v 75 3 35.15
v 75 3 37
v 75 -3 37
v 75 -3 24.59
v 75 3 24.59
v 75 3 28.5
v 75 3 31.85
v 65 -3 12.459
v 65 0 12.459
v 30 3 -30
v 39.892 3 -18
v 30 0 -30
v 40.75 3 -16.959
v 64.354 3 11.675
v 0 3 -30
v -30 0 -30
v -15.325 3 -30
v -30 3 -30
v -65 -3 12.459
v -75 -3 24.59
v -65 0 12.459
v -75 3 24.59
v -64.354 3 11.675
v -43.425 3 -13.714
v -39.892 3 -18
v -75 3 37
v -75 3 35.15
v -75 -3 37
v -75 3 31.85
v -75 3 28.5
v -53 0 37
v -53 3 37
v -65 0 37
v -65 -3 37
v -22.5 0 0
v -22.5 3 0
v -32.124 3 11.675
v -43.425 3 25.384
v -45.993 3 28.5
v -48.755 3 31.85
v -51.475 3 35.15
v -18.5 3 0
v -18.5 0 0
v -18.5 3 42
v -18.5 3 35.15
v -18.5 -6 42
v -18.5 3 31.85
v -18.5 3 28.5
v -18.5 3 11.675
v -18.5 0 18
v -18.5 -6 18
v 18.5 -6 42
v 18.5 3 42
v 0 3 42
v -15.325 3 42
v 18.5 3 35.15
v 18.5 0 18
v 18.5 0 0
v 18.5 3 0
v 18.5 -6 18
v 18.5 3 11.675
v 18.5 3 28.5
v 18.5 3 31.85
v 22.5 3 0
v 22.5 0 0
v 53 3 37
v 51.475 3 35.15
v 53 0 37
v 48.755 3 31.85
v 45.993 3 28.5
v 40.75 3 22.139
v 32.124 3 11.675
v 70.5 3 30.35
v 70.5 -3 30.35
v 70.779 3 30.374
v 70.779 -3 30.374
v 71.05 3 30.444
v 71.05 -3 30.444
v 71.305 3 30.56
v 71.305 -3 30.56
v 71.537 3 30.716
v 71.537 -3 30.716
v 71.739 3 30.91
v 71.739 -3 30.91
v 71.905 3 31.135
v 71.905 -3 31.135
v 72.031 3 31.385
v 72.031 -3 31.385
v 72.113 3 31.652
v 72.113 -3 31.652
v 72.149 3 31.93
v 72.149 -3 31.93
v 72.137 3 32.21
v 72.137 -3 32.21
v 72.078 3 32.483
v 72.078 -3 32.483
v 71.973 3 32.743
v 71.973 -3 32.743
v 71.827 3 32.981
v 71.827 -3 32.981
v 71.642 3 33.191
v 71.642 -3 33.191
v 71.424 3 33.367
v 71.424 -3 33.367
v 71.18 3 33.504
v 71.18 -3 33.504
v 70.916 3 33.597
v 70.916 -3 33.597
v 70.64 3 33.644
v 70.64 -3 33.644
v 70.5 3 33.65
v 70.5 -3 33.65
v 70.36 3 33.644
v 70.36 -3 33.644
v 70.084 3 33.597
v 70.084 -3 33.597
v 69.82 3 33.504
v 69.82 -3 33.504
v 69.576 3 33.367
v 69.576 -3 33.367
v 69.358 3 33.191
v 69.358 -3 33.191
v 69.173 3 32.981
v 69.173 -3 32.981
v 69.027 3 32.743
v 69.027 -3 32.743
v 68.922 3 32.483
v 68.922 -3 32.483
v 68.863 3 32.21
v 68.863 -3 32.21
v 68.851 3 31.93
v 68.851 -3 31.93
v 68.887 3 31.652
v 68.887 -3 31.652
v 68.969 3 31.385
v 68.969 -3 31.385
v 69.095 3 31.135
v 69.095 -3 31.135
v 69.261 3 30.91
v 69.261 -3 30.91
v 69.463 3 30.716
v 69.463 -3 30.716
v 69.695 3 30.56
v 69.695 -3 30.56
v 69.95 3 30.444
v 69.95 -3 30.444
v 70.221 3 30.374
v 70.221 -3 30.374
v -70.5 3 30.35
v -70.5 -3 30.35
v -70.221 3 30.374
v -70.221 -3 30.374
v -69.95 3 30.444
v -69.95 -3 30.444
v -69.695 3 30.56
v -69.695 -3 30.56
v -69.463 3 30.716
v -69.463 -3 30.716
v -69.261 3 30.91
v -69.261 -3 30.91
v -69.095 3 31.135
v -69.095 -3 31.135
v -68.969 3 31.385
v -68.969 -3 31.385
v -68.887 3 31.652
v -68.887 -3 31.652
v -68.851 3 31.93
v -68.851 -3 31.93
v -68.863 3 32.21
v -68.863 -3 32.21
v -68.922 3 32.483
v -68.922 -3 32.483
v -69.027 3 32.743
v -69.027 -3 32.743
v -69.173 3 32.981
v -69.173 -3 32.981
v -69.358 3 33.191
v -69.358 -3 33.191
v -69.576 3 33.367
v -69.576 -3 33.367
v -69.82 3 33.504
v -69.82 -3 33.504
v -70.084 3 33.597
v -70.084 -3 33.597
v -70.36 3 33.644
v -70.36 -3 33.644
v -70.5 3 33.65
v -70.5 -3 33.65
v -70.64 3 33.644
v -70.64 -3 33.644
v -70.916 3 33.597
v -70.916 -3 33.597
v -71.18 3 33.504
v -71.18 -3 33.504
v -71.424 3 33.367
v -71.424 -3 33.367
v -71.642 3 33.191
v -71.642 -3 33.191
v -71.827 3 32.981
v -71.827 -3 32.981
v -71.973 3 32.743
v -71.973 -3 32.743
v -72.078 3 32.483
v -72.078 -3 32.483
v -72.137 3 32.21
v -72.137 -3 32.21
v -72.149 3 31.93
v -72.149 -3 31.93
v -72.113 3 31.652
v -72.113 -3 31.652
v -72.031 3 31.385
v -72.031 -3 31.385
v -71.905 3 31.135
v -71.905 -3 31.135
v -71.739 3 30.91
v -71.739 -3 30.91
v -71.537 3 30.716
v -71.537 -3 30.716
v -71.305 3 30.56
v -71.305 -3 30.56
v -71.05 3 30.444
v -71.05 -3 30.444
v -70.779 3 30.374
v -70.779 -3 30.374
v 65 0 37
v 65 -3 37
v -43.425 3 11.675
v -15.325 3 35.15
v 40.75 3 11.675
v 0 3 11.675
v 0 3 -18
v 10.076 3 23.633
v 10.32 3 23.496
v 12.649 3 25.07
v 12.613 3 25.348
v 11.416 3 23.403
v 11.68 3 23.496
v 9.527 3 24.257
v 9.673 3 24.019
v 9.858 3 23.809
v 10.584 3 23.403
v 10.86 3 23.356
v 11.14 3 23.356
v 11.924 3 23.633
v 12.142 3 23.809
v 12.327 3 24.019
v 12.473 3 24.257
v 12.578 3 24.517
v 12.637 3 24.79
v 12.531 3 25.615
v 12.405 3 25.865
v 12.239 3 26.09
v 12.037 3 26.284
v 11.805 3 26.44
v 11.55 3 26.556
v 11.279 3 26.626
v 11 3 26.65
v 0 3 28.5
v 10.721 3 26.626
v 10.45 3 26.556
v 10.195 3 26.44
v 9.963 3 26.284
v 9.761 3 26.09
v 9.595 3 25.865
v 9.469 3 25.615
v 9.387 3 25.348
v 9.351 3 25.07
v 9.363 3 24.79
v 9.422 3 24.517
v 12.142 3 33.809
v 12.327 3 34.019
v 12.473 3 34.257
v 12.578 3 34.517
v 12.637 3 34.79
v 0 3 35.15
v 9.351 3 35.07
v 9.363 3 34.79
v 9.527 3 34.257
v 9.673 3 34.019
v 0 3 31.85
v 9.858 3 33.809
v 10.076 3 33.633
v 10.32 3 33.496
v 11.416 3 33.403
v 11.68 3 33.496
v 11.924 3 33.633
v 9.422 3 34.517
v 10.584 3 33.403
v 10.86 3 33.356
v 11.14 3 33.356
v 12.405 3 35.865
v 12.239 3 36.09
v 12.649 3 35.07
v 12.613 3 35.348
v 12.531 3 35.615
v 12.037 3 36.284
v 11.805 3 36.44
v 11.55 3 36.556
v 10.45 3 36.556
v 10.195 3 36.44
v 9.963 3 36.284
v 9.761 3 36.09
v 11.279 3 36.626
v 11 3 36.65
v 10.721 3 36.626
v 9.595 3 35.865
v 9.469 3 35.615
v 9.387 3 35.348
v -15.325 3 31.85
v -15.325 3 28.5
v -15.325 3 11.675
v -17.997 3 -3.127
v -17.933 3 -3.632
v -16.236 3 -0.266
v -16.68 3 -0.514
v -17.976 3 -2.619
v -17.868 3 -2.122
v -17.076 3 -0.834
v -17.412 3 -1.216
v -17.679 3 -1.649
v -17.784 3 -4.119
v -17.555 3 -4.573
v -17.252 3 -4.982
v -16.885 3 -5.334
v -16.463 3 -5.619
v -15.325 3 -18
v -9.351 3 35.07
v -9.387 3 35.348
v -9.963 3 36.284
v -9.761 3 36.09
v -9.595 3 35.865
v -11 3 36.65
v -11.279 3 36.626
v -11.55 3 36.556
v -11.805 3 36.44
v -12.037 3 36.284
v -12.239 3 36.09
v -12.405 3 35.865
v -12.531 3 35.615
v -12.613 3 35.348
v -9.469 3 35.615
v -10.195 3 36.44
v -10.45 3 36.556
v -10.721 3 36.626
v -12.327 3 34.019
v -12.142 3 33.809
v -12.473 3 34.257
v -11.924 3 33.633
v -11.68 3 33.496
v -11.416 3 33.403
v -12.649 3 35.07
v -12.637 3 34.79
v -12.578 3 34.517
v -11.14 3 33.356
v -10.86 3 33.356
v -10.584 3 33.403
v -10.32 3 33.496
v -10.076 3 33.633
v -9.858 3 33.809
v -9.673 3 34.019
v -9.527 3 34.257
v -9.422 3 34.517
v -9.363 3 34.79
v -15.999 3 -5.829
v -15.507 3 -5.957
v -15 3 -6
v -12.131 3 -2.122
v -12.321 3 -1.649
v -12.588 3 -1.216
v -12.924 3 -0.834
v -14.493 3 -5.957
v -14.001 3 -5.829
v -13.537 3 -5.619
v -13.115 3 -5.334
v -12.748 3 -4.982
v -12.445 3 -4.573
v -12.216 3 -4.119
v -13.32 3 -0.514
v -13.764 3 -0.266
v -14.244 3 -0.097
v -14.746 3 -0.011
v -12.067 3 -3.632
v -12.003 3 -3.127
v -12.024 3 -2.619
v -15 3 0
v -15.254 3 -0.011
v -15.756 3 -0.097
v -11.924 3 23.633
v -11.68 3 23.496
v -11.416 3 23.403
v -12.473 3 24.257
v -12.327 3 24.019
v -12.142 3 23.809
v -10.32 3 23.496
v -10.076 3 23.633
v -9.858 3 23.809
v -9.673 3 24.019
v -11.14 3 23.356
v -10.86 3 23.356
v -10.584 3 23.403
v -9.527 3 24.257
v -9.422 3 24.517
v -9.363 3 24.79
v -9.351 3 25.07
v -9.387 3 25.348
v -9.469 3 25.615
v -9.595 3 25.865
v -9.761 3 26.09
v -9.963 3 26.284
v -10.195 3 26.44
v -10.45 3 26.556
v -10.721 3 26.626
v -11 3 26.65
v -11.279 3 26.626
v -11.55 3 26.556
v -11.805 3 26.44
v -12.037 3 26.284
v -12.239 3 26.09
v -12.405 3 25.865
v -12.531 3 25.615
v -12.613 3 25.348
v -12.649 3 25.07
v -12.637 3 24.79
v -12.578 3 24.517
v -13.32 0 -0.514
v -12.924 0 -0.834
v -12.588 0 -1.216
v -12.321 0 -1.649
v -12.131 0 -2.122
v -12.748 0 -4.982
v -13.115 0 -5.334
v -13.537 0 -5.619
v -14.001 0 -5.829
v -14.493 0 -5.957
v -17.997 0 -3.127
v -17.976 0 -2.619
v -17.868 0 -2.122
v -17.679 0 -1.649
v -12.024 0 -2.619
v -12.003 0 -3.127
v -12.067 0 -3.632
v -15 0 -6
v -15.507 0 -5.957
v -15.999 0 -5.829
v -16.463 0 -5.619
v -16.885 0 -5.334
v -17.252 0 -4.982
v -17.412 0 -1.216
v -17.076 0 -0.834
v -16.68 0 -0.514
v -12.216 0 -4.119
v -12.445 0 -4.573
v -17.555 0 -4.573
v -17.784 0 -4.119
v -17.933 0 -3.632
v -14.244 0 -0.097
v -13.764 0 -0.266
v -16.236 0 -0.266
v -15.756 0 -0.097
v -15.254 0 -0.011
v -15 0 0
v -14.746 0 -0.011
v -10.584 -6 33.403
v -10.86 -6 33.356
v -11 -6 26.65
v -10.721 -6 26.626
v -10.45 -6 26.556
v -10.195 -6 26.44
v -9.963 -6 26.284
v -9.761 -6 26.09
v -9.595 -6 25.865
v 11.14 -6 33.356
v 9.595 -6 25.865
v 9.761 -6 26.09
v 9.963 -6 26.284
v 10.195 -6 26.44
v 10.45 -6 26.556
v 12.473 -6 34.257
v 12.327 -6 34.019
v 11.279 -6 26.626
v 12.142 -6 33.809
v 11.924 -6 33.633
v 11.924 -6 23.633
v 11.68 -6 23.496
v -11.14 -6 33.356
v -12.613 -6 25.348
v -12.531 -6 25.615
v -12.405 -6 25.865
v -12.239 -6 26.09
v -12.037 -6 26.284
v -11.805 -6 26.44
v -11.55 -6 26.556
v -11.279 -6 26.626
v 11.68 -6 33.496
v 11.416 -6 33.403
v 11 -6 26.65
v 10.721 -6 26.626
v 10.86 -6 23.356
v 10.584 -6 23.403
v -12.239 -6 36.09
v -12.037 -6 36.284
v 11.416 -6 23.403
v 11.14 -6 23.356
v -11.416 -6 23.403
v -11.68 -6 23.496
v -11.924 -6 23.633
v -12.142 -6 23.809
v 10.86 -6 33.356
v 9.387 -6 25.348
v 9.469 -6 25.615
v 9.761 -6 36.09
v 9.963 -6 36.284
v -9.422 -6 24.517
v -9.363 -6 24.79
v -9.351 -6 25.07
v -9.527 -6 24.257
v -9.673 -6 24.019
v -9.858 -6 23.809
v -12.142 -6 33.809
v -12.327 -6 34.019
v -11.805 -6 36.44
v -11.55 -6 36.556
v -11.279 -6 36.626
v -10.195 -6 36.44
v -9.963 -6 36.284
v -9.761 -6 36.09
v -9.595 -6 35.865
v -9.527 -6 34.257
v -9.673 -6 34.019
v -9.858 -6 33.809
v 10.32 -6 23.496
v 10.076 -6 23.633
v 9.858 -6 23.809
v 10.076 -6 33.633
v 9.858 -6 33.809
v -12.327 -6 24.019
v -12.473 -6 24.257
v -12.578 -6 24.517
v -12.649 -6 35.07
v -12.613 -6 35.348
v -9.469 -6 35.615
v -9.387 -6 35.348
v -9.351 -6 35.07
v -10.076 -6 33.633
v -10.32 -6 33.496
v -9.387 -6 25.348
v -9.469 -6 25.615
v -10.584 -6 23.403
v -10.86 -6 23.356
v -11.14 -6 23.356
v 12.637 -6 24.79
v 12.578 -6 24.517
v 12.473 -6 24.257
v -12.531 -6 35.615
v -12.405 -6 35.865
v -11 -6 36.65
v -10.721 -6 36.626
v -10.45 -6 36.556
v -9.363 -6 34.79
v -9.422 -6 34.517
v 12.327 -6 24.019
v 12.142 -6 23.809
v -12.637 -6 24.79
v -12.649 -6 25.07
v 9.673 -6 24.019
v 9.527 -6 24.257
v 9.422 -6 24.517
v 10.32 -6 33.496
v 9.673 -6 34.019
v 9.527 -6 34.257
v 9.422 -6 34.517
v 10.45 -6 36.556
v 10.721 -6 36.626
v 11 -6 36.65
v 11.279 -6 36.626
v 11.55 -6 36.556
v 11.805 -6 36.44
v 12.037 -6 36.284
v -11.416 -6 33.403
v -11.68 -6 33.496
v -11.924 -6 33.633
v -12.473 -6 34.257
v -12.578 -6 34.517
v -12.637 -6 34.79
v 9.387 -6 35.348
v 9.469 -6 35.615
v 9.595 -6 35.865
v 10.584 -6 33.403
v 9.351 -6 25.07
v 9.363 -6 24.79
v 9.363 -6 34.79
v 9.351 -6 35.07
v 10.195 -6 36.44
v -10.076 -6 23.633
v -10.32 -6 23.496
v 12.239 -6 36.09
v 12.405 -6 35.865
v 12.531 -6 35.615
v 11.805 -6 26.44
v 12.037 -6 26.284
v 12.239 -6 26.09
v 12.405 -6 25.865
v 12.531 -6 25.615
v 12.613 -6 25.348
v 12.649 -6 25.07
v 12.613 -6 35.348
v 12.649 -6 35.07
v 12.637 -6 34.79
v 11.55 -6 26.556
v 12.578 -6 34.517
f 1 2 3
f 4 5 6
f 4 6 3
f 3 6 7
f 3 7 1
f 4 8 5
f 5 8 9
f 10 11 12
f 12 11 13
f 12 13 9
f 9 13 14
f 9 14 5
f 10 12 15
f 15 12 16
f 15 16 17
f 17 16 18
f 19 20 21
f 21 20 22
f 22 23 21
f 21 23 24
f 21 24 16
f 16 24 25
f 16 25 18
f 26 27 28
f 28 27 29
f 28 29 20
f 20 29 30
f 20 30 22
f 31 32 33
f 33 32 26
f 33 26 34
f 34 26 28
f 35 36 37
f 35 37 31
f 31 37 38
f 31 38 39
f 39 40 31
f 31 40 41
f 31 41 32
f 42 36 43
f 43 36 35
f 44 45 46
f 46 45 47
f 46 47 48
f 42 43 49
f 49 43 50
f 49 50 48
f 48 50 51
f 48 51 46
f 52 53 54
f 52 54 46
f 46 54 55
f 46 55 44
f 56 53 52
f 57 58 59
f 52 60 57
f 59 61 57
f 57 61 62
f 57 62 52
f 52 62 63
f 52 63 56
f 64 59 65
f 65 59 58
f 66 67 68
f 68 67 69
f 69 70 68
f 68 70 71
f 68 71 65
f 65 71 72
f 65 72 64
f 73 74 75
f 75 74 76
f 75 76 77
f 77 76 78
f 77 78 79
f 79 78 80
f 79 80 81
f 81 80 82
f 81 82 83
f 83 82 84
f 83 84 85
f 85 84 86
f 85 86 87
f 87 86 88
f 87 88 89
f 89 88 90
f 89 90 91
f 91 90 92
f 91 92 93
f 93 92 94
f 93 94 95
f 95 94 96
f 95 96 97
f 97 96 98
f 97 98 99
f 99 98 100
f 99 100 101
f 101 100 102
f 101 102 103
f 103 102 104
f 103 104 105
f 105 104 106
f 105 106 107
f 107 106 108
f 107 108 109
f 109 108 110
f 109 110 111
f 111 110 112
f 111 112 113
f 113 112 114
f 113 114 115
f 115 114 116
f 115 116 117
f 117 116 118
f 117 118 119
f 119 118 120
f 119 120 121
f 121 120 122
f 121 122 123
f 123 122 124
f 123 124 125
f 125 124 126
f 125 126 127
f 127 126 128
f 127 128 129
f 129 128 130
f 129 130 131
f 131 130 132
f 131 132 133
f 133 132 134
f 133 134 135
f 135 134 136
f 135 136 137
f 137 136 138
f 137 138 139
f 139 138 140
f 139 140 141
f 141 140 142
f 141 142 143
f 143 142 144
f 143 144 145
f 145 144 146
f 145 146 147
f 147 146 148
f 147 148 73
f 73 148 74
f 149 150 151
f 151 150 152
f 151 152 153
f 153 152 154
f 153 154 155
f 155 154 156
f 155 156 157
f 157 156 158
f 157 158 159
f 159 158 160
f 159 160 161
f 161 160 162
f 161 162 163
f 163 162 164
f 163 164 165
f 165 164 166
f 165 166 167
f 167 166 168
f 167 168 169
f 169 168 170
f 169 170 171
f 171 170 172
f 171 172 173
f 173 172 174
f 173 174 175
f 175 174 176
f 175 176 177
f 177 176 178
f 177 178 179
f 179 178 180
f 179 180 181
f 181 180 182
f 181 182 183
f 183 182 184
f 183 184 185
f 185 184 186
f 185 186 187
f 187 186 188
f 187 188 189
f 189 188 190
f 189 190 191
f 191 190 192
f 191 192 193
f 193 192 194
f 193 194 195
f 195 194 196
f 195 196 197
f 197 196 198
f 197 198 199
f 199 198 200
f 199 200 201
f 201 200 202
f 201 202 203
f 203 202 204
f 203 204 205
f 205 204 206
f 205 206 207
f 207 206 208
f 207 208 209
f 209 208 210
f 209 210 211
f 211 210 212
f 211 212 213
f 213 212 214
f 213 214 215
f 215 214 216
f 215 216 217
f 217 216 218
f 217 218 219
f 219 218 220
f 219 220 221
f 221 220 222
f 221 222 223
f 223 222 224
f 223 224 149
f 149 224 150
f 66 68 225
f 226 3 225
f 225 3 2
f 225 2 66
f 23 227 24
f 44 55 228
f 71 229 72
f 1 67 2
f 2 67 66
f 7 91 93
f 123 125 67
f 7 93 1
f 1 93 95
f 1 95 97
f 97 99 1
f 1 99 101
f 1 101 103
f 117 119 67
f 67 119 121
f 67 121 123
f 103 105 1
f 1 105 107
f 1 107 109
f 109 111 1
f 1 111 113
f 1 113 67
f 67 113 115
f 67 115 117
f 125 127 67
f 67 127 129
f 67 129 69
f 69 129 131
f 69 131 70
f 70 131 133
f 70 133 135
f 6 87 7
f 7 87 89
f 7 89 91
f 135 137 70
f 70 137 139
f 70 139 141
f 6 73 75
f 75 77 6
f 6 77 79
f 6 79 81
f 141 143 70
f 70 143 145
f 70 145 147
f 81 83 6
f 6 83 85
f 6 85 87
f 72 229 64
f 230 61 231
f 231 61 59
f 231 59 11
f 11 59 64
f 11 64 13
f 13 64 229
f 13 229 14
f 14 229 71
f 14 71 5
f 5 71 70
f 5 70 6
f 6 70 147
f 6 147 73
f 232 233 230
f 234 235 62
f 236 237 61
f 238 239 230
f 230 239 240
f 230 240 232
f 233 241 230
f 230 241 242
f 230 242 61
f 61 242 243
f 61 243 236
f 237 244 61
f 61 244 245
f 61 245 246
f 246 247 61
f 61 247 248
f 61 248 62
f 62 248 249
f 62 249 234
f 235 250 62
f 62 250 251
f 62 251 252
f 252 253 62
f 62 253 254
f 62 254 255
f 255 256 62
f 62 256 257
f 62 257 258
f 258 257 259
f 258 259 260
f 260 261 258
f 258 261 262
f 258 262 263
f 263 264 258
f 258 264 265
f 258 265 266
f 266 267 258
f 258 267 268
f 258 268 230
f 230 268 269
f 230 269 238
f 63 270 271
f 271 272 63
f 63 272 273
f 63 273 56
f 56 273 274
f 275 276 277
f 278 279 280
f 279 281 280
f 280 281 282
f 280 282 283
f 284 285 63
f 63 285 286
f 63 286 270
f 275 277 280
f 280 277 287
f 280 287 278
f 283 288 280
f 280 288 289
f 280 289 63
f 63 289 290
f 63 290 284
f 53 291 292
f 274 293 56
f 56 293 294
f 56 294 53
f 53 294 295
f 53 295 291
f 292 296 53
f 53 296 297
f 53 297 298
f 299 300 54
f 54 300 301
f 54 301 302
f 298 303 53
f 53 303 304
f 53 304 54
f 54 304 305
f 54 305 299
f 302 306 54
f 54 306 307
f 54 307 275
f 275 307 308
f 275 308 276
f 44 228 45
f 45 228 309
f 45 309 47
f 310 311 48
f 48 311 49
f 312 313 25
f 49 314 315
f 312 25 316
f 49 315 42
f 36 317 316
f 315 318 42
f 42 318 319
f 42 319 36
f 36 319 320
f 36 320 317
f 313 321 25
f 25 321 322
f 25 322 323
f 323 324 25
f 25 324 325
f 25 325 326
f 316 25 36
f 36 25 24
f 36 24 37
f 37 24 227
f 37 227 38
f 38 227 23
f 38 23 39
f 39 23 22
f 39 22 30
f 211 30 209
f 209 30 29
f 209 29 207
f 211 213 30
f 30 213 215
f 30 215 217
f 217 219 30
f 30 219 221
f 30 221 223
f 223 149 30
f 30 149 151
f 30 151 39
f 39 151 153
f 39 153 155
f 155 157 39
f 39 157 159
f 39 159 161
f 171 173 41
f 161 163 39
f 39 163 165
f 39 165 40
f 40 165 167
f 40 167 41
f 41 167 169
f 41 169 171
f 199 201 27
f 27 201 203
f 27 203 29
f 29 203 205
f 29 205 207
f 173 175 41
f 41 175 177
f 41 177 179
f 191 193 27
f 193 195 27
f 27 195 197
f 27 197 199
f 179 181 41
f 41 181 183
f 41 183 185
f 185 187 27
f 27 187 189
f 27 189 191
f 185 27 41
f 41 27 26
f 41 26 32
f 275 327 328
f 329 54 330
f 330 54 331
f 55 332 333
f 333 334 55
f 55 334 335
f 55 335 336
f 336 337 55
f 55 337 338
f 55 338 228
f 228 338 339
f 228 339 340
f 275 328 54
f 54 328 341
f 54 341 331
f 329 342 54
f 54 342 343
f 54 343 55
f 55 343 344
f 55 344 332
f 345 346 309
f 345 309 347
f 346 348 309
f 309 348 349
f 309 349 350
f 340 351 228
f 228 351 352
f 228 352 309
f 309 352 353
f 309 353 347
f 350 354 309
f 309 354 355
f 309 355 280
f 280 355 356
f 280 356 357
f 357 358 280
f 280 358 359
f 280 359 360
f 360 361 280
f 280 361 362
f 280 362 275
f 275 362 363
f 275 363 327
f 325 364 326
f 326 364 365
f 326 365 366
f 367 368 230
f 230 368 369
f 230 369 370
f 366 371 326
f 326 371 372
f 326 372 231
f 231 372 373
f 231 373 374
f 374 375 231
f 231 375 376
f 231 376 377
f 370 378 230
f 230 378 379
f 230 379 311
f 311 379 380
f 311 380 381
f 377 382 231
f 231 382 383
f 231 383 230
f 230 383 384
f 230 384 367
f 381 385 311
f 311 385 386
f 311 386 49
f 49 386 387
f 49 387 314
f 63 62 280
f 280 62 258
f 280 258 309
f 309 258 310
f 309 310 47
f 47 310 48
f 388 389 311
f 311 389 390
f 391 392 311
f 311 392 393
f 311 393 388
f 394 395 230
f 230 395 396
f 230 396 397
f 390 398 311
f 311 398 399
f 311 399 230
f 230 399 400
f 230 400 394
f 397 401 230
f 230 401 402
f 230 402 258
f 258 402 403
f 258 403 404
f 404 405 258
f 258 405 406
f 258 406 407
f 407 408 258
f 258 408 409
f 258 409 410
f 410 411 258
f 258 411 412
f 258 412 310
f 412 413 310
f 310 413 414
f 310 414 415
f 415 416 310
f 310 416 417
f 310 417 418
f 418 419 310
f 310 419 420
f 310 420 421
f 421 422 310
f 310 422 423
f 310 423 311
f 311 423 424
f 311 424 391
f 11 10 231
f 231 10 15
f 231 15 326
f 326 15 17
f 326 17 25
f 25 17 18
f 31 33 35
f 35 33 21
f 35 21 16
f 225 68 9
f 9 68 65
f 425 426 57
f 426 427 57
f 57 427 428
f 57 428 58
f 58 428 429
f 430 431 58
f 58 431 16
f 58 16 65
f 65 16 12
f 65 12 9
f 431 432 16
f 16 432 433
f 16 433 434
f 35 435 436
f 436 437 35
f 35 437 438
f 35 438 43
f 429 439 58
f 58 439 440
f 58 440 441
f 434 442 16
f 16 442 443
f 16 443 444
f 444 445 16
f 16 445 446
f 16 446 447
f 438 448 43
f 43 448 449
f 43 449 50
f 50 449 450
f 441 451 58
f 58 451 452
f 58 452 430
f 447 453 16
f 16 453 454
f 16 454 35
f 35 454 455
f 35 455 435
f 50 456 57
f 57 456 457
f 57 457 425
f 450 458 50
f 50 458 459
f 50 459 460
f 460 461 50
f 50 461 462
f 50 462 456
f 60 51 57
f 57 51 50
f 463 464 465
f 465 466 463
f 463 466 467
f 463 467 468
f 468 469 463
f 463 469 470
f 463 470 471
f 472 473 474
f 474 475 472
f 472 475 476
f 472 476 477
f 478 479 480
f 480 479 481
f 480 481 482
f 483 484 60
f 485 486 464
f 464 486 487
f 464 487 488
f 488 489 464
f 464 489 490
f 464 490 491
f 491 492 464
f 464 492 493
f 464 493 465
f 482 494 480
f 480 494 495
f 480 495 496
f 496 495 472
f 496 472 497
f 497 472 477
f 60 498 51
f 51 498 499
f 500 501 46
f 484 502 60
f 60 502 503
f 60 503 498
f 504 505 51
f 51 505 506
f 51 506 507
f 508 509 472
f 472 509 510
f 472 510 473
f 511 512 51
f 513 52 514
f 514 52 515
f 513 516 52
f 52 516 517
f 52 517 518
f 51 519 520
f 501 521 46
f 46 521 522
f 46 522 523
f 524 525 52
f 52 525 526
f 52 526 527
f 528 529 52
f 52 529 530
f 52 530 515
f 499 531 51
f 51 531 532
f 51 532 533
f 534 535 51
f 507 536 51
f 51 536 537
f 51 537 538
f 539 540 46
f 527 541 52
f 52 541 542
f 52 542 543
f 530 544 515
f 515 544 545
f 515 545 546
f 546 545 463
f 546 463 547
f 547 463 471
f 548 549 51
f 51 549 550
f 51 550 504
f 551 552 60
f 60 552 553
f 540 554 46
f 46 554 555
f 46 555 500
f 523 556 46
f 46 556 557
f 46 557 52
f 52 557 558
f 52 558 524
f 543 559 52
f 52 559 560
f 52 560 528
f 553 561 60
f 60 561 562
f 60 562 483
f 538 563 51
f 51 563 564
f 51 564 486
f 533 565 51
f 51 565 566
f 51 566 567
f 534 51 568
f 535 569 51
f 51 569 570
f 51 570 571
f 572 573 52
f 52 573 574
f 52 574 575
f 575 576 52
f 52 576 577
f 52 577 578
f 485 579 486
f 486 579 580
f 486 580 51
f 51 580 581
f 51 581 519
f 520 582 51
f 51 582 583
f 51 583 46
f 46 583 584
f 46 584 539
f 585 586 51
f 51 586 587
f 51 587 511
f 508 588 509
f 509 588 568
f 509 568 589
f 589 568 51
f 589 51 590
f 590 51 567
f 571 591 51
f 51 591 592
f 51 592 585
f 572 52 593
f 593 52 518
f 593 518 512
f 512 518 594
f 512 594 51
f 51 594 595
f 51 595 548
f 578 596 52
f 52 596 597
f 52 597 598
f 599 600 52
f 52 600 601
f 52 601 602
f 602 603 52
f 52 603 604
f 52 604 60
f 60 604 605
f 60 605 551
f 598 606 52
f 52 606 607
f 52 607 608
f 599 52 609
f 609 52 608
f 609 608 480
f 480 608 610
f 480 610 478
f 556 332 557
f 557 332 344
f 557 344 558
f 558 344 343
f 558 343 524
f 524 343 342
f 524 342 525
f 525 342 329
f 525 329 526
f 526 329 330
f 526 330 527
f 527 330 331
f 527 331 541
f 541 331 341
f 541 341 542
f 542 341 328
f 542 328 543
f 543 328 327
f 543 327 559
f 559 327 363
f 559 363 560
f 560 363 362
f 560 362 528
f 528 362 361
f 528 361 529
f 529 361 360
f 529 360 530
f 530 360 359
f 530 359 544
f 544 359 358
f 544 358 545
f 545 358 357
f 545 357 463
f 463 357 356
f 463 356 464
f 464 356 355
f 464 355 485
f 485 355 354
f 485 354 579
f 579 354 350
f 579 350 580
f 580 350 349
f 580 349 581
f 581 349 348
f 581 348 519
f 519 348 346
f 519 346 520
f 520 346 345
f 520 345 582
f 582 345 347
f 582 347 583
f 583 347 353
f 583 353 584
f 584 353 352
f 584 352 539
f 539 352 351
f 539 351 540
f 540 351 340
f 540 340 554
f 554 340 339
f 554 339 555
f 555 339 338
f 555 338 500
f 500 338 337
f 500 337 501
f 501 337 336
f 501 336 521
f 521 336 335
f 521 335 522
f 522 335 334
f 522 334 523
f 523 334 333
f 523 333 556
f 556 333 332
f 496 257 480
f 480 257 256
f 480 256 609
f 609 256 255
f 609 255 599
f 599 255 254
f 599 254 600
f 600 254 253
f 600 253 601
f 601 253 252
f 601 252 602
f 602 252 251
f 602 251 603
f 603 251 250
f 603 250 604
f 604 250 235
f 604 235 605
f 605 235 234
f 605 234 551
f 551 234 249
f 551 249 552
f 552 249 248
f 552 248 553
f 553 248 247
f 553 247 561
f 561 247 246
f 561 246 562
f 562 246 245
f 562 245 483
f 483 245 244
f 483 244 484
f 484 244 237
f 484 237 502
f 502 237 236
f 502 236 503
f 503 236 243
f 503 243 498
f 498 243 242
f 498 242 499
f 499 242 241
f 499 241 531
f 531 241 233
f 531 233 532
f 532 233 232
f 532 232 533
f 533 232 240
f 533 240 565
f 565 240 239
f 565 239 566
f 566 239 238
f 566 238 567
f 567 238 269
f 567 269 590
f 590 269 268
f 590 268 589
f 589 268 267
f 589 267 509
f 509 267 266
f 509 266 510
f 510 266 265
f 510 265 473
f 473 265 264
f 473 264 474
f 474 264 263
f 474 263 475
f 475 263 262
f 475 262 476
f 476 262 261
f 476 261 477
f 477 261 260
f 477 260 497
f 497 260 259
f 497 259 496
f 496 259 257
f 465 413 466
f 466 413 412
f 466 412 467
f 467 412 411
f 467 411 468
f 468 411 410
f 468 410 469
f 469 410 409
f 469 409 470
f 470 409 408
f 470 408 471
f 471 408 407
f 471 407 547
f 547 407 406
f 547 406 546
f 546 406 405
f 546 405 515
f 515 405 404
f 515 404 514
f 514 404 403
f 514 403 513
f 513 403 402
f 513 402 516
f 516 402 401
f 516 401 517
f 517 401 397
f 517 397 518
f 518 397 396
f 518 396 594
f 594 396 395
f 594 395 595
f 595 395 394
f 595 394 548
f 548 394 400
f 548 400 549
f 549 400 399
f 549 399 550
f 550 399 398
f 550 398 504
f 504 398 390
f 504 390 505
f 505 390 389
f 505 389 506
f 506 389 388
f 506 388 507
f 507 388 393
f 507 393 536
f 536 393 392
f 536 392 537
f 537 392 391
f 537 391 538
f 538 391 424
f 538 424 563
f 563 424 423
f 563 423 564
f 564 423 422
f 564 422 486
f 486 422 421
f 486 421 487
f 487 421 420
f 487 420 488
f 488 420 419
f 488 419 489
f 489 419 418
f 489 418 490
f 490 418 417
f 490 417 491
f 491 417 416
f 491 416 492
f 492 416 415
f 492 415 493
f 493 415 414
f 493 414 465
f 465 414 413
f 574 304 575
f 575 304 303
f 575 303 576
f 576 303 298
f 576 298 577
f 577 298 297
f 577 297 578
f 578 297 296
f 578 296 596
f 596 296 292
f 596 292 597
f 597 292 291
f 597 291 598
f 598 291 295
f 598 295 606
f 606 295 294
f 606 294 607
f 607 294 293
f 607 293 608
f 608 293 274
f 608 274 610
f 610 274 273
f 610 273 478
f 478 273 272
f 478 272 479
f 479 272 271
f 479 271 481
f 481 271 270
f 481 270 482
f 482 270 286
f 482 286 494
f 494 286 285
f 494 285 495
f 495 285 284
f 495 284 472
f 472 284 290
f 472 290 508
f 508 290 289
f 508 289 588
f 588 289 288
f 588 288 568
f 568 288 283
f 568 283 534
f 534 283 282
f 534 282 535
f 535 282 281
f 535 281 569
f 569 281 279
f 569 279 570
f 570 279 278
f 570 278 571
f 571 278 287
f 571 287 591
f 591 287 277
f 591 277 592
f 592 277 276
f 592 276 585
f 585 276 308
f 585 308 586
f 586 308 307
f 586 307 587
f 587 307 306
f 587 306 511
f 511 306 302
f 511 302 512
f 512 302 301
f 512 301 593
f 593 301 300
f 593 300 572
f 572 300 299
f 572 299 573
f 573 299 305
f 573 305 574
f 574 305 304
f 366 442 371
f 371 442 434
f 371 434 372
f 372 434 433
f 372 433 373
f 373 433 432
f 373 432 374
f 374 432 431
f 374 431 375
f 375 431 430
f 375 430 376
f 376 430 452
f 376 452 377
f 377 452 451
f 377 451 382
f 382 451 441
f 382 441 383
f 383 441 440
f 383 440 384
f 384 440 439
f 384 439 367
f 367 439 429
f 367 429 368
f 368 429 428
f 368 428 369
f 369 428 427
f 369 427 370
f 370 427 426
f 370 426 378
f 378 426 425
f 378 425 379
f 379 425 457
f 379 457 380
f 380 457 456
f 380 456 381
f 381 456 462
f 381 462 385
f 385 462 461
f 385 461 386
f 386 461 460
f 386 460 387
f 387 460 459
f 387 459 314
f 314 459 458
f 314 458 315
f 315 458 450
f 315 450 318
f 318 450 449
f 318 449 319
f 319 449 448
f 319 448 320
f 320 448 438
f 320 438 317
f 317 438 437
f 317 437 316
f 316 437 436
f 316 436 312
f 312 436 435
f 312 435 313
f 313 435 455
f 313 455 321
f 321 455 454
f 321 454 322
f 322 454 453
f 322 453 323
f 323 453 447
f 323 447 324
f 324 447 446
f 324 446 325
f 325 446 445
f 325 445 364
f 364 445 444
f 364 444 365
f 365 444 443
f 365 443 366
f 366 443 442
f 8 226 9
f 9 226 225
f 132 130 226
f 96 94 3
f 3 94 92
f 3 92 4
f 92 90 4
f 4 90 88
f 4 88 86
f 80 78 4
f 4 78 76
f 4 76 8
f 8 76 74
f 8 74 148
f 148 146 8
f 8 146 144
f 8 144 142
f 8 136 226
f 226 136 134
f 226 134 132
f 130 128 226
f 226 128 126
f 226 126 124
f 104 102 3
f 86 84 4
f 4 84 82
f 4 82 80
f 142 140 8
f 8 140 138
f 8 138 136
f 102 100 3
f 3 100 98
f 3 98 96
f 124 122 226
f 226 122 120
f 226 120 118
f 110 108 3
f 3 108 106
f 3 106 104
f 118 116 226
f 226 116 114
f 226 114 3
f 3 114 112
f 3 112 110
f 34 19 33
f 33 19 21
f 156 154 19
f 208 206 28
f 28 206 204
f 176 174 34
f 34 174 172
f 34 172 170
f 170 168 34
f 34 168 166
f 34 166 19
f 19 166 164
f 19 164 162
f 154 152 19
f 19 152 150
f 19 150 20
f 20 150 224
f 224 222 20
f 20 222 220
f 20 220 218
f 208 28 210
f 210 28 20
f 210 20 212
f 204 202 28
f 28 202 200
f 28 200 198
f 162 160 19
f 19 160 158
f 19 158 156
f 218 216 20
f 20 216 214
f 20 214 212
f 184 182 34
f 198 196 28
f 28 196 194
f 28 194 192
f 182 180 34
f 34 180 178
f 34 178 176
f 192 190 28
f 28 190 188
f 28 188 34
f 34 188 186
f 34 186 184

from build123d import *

# Parameters (mm, degrees)
SKETCH1_R               = 1.65
BOSS_EXTRUDE1_DEPTH     = 3
SKETCH3_W               = 37
SKETCH3_H               = 24
BOSS_EXTRUDE3_DEPTH     = 6
CUT_EXTRUDE1_DEPTH      = 10
CUT_EXTRUDE1_DEPTH_BACK = 21
SKETCH4_R               = 1.65
CUT_EXTRUDE2_DEPTH      = 10
BOSS_EXTRUDE4_START     = -3
SKETCH7_R               = 1.65
BOSS_EXTRUDE4_DEPTH     = 3


with BuildPart() as part:
    # Sketch1 → Boss-Extrude1 (new body)
    with BuildSketch(Plane(origin=(0, 0, 0), x_dir=(1, 0, 0), z_dir=(0, 1, 0))):
        Polygon((-22.5, 0), (-18.5, 0), (-18.5, -42), (18.5, -42), (18.5, 0), (22.5, 0), (53, -37), (75, -37), (75, -24.590163934), (30, 30), (-30, 30), (-75, -24.590163934), (-75, -37), (-53, -37), align=None)
        with Locations(Location((70.5, -32, 0), (0, 0, 270))):
            Circle(SKETCH1_R, mode=Mode.SUBTRACT)
        with Locations(Location((-70.5, -32, 0), (0, 0, 270))):
            Circle(SKETCH1_R, mode=Mode.SUBTRACT)
    extrude(amount=BOSS_EXTRUDE1_DEPTH)

    # Sketch3 → Boss-Extrude3 (add)
    with BuildSketch(Plane(origin=(0, 0, 0), x_dir=(1, 0, 0), z_dir=(0, 1, 0))):
        with Locations((0, -30)):
            Rectangle(SKETCH3_W, SKETCH3_H)
    extrude(amount=-BOSS_EXTRUDE3_DEPTH)

    # Sketch4 → Cut-Extrude1 (cut, two sides: drawn at the far end of the back side and taken through both)
    with BuildSketch(Plane(origin=(0, 0, 0), x_dir=(1, 0, 0), z_dir=(0, 1, 0)).offset(-CUT_EXTRUDE1_DEPTH_BACK)):
        with Locations(Location((-11, -35, 0), (0, 0, 270))):
            Circle(SKETCH4_R)
        with Locations(Location((11, -35, 0), (0, 0, 270))):
            Circle(SKETCH4_R)
        with Locations(Location((-11, -25, 0), (0, 0, 270))):
            Circle(SKETCH4_R)
        with Locations(Location((11, -25, 0), (0, 0, 270))):
            Circle(SKETCH4_R)
    extrude(amount=CUT_EXTRUDE1_DEPTH + CUT_EXTRUDE1_DEPTH_BACK, mode=Mode.SUBTRACT)

    # Sketch5 → Cut-Extrude2 (cut)
    with BuildSketch(Plane(origin=(0, 0, 0), x_dir=(1, 0, 0), z_dir=(0, 1, 0))):
        with BuildLine():
            ThreePointArc((-15, 0), (-12, 3), (-15, 6))
            ThreePointArc((-15, 6), (-18, 3), (-15, 0))
        make_face()
    extrude(amount=CUT_EXTRUDE2_DEPTH, mode=Mode.SUBTRACT)

    # Sketch7 → Boss-Extrude4 (add)
    # profile 1 of 2: a face of its own
    with BuildSketch(Plane(origin=(0, 0, 0), x_dir=(1, 0, 0), z_dir=(0, 1, 0)).offset(BOSS_EXTRUDE4_START)):
        Polygon((65, -12.459016393), (65, -37), (75, -37), (75, -24.590163934), align=None)
        with Locations(Location((70.5, -32, 0), (0, 0, 270))):
            Circle(SKETCH7_R, mode=Mode.SUBTRACT)
    # profile 2 of 2: a face of its own
    with BuildSketch(Plane(origin=(0, 0, 0), x_dir=(1, 0, 0), z_dir=(0, 1, 0)).offset(BOSS_EXTRUDE4_START)):
        Polygon((-75, -24.590163934), (-65, -12.459016393), (-65, -37), (-75, -37), align=None)
        with Locations(Location((-70.5, -32, 0), (0, 0, 270))):
            Circle(SKETCH7_R, mode=Mode.SUBTRACT)
    extrude(amount=BOSS_EXTRUDE4_DEPTH)


solid = part.part
